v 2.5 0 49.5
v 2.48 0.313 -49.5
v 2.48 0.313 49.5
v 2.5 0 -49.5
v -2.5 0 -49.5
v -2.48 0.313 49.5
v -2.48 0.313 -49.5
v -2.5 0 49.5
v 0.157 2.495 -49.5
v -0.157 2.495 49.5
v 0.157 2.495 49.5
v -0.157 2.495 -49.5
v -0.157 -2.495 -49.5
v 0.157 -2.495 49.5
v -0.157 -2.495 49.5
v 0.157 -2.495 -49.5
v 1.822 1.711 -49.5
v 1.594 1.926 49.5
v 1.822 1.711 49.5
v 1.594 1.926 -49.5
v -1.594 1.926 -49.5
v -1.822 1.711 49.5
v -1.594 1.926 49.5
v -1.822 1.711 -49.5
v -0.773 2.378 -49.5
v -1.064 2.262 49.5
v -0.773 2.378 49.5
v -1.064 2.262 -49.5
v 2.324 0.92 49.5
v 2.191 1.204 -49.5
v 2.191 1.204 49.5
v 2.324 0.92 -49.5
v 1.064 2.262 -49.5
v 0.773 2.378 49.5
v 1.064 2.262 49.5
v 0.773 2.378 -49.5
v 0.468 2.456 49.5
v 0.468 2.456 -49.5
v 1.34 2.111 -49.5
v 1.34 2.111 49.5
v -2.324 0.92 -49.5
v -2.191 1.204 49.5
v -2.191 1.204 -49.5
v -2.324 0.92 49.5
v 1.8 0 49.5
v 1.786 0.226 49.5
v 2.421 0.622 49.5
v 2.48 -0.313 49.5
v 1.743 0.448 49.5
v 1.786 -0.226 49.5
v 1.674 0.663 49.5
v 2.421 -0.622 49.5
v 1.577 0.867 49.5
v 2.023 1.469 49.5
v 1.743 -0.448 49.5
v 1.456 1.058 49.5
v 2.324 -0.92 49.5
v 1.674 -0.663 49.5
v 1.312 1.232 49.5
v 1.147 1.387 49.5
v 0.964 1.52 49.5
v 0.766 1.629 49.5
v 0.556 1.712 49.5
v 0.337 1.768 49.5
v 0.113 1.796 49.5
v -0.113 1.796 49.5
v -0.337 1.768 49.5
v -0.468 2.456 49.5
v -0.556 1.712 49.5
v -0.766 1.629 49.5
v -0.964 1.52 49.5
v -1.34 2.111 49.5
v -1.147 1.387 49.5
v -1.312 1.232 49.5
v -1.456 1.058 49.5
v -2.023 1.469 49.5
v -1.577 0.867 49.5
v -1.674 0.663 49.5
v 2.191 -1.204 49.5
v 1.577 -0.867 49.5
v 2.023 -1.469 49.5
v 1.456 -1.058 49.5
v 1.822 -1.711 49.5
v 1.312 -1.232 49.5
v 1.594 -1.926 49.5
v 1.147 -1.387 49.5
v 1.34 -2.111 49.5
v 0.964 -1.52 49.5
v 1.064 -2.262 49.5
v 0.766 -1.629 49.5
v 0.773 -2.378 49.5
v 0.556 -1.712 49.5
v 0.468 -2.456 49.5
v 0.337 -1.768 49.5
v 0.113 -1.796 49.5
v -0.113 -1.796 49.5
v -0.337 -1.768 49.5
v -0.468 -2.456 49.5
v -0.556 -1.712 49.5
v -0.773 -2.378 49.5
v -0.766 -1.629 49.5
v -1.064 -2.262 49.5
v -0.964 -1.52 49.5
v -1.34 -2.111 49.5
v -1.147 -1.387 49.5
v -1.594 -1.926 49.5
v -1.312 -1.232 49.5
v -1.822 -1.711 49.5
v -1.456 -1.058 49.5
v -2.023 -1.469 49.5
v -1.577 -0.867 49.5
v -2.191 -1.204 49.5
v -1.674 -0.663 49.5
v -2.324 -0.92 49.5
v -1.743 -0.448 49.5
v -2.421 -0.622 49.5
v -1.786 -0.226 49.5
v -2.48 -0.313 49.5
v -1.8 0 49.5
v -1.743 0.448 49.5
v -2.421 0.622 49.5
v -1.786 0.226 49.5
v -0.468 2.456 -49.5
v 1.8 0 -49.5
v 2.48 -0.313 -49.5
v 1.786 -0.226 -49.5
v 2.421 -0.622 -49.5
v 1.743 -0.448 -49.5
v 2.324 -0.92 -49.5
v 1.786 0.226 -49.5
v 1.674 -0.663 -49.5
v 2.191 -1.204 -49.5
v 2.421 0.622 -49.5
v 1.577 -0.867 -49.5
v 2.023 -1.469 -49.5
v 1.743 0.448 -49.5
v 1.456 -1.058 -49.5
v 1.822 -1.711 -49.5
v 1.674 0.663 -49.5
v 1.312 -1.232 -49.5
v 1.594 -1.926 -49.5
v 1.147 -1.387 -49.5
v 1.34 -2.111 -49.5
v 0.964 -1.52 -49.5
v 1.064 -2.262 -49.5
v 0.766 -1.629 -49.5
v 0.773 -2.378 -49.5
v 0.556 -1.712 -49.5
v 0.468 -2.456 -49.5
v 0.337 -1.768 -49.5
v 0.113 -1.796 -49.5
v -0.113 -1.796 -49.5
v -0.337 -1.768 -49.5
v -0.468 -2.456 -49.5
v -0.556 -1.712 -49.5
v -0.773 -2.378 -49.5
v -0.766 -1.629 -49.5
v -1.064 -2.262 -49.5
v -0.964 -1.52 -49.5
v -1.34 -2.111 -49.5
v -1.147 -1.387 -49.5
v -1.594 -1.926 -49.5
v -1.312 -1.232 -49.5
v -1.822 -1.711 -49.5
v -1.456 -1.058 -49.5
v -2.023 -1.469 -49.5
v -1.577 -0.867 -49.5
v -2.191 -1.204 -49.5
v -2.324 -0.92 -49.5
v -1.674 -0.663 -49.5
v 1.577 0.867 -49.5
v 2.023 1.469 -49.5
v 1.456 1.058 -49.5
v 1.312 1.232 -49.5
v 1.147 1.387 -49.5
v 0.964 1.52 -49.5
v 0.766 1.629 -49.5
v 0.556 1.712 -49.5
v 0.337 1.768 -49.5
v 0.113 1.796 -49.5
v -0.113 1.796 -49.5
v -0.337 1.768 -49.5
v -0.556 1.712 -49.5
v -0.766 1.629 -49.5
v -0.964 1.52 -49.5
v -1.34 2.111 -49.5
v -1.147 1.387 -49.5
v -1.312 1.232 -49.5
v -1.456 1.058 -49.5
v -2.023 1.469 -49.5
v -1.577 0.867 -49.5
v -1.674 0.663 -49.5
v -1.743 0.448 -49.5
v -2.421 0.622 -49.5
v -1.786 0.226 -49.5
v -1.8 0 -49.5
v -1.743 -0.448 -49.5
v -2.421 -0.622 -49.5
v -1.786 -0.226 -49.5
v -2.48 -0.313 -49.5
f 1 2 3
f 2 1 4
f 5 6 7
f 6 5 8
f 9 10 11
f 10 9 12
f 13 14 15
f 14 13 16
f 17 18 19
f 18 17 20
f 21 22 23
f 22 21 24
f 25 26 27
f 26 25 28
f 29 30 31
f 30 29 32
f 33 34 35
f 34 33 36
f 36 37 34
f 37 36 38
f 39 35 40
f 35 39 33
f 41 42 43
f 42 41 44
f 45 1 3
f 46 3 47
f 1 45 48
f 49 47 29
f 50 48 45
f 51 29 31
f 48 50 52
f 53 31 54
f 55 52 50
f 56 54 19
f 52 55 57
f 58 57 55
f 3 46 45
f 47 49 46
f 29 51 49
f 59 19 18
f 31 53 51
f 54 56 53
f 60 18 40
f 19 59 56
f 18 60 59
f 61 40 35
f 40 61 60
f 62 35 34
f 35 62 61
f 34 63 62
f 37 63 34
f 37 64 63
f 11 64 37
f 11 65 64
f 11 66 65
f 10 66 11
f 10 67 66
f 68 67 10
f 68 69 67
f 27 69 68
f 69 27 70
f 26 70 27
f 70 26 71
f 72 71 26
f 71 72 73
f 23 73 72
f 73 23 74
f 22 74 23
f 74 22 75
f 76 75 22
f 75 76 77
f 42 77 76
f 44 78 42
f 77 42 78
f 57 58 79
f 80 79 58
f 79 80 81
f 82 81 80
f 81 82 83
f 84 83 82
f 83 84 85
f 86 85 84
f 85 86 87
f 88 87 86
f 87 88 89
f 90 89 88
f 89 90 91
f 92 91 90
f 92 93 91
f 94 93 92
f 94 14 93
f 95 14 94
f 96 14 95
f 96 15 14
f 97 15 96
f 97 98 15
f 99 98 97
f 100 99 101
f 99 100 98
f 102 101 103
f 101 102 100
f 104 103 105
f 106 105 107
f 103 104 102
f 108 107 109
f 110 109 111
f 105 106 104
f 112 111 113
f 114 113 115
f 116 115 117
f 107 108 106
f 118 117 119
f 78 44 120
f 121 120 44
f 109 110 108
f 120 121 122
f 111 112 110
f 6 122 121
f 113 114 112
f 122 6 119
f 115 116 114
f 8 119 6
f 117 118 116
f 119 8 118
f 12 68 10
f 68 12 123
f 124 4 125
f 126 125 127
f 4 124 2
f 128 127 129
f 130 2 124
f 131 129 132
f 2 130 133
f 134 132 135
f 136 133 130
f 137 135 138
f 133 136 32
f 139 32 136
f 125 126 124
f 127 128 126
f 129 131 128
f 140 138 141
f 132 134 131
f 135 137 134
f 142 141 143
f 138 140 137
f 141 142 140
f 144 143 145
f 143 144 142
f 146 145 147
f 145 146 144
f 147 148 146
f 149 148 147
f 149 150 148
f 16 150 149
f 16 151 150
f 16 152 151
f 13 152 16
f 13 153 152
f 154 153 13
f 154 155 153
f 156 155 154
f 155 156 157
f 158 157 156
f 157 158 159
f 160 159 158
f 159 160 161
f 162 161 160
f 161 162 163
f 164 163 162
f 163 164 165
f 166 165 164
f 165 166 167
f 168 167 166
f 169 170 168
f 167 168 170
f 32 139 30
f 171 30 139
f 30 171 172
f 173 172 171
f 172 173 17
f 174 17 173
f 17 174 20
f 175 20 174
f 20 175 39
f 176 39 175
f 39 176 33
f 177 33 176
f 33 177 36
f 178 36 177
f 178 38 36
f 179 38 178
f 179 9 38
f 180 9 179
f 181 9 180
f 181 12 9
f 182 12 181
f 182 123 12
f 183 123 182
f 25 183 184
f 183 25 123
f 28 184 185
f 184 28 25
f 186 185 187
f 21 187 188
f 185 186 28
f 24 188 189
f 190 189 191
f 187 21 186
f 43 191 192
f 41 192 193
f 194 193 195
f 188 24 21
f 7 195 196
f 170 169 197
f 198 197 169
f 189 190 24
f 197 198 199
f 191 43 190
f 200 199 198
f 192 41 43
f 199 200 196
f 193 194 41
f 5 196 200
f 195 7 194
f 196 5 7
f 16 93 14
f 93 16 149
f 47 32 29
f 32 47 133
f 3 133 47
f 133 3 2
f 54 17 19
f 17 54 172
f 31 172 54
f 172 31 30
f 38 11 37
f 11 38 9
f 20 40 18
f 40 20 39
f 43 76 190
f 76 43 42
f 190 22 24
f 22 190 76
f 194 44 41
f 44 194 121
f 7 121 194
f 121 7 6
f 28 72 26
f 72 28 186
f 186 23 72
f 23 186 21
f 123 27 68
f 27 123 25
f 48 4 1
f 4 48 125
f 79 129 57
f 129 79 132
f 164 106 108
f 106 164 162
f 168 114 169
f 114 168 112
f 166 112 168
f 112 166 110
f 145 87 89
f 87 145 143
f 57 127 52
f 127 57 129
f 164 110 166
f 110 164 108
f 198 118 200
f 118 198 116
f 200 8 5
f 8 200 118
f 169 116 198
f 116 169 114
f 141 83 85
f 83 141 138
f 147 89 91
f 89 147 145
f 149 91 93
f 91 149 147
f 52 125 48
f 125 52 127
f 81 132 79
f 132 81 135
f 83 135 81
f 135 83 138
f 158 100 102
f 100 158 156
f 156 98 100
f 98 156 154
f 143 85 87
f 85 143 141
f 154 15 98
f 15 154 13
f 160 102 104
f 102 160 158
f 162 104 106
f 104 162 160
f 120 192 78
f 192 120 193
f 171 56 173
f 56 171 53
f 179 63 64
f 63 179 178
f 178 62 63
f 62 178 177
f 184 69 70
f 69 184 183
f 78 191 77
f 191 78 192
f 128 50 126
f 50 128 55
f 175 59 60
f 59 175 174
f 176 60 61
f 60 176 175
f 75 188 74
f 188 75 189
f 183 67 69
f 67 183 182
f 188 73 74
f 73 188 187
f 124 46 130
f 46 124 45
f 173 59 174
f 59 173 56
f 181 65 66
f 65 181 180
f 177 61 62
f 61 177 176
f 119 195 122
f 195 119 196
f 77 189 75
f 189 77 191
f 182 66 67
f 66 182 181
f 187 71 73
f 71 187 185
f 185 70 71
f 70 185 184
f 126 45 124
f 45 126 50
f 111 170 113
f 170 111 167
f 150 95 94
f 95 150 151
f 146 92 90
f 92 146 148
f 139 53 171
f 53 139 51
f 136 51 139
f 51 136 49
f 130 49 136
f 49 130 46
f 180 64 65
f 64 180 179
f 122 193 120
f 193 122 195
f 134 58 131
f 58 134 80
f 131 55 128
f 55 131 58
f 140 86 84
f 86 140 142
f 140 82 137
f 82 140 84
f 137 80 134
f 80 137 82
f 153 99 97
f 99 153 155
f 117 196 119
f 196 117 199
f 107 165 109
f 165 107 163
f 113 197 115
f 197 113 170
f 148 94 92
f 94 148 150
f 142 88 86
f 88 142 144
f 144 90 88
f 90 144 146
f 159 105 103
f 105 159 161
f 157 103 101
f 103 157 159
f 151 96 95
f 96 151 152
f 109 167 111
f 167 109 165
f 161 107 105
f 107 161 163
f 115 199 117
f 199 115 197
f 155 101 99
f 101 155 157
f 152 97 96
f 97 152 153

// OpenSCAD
$fn = 50;


difference() {
	union() {
		translate(v = [0, 0, -49.5000000000]) {
			cylinder(h = 99, r = 2.5000000000);
		}
	}
	union() {
		translate(v = [0, 0, -100.0000000000]) {
			cylinder(h = 200, r = 1.8000000000);
		}
	}
}
